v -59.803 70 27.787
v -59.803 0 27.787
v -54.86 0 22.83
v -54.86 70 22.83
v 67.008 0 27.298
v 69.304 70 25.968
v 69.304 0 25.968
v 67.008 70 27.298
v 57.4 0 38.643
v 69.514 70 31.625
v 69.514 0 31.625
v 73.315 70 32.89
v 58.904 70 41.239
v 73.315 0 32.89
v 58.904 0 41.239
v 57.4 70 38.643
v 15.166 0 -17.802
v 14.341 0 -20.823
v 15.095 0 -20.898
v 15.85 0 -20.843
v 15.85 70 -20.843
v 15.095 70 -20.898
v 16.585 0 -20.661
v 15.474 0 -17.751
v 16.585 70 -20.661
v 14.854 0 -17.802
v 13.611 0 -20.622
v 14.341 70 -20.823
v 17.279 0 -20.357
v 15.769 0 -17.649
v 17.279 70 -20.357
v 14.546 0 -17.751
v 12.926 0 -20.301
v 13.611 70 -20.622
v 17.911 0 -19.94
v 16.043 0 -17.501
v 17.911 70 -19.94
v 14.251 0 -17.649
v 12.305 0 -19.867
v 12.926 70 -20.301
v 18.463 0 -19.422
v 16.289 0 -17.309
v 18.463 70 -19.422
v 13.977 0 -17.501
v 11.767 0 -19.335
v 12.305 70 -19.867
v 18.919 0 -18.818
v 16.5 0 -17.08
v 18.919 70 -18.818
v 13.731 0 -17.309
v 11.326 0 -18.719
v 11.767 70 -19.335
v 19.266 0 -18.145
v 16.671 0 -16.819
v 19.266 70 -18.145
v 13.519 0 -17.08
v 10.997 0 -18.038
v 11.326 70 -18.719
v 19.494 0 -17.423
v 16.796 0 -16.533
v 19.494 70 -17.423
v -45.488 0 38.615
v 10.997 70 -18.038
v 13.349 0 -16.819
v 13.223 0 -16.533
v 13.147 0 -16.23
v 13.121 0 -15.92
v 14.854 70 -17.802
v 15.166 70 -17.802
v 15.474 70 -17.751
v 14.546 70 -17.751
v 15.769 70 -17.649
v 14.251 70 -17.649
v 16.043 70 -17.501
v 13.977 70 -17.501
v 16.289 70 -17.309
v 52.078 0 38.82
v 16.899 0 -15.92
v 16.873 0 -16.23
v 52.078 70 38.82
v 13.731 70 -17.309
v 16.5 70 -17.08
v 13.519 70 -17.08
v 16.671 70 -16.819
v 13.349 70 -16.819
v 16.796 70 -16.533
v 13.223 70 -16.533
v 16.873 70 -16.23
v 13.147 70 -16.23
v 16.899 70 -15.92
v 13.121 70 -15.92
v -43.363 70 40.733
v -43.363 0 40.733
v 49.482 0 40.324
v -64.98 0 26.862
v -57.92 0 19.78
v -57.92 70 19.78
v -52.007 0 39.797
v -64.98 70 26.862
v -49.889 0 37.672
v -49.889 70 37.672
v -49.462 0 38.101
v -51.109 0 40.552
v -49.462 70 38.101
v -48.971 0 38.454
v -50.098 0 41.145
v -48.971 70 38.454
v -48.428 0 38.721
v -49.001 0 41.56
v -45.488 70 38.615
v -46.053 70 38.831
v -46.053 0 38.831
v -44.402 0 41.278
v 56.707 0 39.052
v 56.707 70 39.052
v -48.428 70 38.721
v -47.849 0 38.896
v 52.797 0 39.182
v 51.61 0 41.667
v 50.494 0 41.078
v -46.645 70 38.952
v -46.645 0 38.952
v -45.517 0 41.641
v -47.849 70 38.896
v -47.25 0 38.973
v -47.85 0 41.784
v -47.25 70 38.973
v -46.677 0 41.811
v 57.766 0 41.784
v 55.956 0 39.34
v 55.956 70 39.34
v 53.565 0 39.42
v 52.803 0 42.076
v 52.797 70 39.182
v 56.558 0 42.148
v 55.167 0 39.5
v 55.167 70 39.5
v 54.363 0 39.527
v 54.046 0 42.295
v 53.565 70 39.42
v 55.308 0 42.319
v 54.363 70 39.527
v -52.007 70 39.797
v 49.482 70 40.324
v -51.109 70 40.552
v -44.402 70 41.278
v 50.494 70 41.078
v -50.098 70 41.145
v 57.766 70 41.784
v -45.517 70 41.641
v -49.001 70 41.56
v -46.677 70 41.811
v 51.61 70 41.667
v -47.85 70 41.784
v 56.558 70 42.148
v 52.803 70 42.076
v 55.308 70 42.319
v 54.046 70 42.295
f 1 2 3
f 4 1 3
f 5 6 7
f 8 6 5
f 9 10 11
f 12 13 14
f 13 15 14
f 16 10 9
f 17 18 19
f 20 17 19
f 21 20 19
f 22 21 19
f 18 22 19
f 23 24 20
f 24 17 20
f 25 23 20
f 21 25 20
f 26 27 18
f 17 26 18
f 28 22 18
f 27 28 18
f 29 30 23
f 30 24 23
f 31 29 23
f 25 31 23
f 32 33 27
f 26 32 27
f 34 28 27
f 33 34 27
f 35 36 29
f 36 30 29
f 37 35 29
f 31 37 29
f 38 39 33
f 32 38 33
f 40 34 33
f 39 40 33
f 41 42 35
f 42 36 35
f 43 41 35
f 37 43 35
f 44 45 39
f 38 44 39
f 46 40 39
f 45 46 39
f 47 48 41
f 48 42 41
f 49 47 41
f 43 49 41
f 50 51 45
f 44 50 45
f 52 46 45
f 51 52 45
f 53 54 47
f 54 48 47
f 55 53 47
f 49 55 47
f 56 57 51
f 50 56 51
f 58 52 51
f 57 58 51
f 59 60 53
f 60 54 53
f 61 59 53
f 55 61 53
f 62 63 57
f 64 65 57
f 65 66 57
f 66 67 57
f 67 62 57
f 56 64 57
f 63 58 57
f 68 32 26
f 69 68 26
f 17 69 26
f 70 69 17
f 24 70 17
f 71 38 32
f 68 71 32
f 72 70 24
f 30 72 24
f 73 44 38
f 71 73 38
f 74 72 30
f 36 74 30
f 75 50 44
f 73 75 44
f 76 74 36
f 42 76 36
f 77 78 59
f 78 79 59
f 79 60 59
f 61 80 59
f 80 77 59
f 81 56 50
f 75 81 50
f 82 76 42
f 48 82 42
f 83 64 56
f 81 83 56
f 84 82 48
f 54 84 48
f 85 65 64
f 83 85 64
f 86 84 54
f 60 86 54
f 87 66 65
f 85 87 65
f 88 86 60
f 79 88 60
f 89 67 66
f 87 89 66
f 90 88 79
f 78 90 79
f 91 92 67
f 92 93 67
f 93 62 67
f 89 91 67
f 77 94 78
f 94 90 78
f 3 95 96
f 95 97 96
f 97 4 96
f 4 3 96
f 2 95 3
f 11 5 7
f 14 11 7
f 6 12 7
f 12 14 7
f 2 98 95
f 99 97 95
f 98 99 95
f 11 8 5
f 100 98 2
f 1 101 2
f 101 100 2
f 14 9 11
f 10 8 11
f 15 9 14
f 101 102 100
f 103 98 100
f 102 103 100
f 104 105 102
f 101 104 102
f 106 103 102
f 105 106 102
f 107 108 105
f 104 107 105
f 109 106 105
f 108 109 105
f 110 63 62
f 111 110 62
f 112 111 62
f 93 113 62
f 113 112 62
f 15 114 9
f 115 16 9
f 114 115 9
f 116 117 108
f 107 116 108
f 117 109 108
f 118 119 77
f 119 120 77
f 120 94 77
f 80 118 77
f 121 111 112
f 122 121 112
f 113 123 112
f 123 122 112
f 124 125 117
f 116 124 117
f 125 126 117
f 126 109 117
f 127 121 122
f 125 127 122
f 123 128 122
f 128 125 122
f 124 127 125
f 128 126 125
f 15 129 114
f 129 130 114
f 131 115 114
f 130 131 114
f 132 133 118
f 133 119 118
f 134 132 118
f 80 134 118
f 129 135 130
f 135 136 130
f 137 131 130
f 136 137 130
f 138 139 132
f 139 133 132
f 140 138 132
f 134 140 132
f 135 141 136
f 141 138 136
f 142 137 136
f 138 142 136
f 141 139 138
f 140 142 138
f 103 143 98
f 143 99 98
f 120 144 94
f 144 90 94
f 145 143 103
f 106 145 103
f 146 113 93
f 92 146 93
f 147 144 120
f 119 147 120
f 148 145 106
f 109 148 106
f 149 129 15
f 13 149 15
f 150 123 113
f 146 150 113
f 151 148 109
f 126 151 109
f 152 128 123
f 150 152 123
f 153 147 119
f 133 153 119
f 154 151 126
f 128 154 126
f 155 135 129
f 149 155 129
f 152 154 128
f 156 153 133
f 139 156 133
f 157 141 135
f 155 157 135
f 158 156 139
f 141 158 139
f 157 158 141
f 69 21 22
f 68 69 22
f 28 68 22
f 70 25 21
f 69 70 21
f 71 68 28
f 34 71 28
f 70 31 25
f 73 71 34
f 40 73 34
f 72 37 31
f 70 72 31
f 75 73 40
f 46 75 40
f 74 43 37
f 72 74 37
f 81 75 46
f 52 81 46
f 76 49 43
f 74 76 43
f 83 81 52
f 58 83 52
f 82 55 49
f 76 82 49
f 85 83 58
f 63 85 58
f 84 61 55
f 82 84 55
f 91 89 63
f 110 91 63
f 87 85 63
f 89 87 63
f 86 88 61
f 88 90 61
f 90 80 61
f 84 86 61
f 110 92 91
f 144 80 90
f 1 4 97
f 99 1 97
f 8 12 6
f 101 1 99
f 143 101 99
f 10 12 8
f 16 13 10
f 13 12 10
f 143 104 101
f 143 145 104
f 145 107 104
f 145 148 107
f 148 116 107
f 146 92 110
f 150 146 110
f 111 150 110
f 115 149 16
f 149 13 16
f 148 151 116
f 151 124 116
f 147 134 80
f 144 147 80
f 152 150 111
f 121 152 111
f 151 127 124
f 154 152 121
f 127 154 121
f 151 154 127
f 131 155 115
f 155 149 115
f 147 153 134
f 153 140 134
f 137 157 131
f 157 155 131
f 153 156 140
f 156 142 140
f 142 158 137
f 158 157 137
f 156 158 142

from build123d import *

# Parameters (mm, degrees)
EXTRUDE_1_DEPTH = 70


with BuildPart() as part:
    # 草圖1 → 填料-伸長1 (new body)
    with BuildSketch(Plane(origin=(0, 0, 0), x_dir=(1, 0, 0), z_dir=(0, 1, 0))):
        with BuildLine():
            Line((10.996587269, 18.037741282), (-45.487838574, -38.61479297))
            ThreePointArc((-45.487838574, -38.61479297), (-47.84934361, -38.895811815), (-49.888582931, -37.672218494))
            Line((-49.888582931, -37.672218494), (-59.802776425, -27.787443971))
            Line((-59.802776425, -27.787443971), (-54.860389164, -22.830347224))
            Line((-54.860389164, -22.830347224), (-57.919724227, -19.780090306))
            Line((-57.919724227, -19.780090306), (-64.980277457, -26.861657088))
            Line((-64.980277457, -26.861657088), (-52.0067489, -39.796688528))
            ThreePointArc((-52.0067489, -39.796688528), (-47.849605549, -41.783872953), (-43.363368539, -40.732958939))
            Line((-43.363368539, -40.732958939), (13.121057303, 15.919575313))
            ThreePointArc((13.121057303, 15.919575313), (15.009846467, 17.808364477), (16.898635631, 15.919575313))
            Line((16.898635631, 15.919575313), (49.482242531, -40.323722611))
            ThreePointArc((49.482242531, -40.323722611), (54.046060411, -42.29505362), (58.903884757, -41.238586769))
            Line((58.903884757, -41.238586769), (73.314668888, -32.889941818))
            Line((73.314668888, -32.889941818), (69.304378808, -25.967689766))
            Line((69.304378808, -25.967689766), (67.007535769, -27.298327077))
            Line((67.007535769, -27.298327077), (69.513967069, -31.624734609))
            Line((69.513967069, -31.624734609), (57.400025977, -38.642742249))
            ThreePointArc((57.400025977, -38.642742249), (54.765652782, -39.530436118), (52.078087051, -38.819863831))
            Line((52.078087051, -38.819863831), (19.494480151, 17.423434093))
            ThreePointArc((19.494480151, 17.423434093), (15.47366289, 20.886366054), (10.996587269, 18.037741282))
        make_face()
    extrude(amount=EXTRUDE_1_DEPTH)


solid = part.part
